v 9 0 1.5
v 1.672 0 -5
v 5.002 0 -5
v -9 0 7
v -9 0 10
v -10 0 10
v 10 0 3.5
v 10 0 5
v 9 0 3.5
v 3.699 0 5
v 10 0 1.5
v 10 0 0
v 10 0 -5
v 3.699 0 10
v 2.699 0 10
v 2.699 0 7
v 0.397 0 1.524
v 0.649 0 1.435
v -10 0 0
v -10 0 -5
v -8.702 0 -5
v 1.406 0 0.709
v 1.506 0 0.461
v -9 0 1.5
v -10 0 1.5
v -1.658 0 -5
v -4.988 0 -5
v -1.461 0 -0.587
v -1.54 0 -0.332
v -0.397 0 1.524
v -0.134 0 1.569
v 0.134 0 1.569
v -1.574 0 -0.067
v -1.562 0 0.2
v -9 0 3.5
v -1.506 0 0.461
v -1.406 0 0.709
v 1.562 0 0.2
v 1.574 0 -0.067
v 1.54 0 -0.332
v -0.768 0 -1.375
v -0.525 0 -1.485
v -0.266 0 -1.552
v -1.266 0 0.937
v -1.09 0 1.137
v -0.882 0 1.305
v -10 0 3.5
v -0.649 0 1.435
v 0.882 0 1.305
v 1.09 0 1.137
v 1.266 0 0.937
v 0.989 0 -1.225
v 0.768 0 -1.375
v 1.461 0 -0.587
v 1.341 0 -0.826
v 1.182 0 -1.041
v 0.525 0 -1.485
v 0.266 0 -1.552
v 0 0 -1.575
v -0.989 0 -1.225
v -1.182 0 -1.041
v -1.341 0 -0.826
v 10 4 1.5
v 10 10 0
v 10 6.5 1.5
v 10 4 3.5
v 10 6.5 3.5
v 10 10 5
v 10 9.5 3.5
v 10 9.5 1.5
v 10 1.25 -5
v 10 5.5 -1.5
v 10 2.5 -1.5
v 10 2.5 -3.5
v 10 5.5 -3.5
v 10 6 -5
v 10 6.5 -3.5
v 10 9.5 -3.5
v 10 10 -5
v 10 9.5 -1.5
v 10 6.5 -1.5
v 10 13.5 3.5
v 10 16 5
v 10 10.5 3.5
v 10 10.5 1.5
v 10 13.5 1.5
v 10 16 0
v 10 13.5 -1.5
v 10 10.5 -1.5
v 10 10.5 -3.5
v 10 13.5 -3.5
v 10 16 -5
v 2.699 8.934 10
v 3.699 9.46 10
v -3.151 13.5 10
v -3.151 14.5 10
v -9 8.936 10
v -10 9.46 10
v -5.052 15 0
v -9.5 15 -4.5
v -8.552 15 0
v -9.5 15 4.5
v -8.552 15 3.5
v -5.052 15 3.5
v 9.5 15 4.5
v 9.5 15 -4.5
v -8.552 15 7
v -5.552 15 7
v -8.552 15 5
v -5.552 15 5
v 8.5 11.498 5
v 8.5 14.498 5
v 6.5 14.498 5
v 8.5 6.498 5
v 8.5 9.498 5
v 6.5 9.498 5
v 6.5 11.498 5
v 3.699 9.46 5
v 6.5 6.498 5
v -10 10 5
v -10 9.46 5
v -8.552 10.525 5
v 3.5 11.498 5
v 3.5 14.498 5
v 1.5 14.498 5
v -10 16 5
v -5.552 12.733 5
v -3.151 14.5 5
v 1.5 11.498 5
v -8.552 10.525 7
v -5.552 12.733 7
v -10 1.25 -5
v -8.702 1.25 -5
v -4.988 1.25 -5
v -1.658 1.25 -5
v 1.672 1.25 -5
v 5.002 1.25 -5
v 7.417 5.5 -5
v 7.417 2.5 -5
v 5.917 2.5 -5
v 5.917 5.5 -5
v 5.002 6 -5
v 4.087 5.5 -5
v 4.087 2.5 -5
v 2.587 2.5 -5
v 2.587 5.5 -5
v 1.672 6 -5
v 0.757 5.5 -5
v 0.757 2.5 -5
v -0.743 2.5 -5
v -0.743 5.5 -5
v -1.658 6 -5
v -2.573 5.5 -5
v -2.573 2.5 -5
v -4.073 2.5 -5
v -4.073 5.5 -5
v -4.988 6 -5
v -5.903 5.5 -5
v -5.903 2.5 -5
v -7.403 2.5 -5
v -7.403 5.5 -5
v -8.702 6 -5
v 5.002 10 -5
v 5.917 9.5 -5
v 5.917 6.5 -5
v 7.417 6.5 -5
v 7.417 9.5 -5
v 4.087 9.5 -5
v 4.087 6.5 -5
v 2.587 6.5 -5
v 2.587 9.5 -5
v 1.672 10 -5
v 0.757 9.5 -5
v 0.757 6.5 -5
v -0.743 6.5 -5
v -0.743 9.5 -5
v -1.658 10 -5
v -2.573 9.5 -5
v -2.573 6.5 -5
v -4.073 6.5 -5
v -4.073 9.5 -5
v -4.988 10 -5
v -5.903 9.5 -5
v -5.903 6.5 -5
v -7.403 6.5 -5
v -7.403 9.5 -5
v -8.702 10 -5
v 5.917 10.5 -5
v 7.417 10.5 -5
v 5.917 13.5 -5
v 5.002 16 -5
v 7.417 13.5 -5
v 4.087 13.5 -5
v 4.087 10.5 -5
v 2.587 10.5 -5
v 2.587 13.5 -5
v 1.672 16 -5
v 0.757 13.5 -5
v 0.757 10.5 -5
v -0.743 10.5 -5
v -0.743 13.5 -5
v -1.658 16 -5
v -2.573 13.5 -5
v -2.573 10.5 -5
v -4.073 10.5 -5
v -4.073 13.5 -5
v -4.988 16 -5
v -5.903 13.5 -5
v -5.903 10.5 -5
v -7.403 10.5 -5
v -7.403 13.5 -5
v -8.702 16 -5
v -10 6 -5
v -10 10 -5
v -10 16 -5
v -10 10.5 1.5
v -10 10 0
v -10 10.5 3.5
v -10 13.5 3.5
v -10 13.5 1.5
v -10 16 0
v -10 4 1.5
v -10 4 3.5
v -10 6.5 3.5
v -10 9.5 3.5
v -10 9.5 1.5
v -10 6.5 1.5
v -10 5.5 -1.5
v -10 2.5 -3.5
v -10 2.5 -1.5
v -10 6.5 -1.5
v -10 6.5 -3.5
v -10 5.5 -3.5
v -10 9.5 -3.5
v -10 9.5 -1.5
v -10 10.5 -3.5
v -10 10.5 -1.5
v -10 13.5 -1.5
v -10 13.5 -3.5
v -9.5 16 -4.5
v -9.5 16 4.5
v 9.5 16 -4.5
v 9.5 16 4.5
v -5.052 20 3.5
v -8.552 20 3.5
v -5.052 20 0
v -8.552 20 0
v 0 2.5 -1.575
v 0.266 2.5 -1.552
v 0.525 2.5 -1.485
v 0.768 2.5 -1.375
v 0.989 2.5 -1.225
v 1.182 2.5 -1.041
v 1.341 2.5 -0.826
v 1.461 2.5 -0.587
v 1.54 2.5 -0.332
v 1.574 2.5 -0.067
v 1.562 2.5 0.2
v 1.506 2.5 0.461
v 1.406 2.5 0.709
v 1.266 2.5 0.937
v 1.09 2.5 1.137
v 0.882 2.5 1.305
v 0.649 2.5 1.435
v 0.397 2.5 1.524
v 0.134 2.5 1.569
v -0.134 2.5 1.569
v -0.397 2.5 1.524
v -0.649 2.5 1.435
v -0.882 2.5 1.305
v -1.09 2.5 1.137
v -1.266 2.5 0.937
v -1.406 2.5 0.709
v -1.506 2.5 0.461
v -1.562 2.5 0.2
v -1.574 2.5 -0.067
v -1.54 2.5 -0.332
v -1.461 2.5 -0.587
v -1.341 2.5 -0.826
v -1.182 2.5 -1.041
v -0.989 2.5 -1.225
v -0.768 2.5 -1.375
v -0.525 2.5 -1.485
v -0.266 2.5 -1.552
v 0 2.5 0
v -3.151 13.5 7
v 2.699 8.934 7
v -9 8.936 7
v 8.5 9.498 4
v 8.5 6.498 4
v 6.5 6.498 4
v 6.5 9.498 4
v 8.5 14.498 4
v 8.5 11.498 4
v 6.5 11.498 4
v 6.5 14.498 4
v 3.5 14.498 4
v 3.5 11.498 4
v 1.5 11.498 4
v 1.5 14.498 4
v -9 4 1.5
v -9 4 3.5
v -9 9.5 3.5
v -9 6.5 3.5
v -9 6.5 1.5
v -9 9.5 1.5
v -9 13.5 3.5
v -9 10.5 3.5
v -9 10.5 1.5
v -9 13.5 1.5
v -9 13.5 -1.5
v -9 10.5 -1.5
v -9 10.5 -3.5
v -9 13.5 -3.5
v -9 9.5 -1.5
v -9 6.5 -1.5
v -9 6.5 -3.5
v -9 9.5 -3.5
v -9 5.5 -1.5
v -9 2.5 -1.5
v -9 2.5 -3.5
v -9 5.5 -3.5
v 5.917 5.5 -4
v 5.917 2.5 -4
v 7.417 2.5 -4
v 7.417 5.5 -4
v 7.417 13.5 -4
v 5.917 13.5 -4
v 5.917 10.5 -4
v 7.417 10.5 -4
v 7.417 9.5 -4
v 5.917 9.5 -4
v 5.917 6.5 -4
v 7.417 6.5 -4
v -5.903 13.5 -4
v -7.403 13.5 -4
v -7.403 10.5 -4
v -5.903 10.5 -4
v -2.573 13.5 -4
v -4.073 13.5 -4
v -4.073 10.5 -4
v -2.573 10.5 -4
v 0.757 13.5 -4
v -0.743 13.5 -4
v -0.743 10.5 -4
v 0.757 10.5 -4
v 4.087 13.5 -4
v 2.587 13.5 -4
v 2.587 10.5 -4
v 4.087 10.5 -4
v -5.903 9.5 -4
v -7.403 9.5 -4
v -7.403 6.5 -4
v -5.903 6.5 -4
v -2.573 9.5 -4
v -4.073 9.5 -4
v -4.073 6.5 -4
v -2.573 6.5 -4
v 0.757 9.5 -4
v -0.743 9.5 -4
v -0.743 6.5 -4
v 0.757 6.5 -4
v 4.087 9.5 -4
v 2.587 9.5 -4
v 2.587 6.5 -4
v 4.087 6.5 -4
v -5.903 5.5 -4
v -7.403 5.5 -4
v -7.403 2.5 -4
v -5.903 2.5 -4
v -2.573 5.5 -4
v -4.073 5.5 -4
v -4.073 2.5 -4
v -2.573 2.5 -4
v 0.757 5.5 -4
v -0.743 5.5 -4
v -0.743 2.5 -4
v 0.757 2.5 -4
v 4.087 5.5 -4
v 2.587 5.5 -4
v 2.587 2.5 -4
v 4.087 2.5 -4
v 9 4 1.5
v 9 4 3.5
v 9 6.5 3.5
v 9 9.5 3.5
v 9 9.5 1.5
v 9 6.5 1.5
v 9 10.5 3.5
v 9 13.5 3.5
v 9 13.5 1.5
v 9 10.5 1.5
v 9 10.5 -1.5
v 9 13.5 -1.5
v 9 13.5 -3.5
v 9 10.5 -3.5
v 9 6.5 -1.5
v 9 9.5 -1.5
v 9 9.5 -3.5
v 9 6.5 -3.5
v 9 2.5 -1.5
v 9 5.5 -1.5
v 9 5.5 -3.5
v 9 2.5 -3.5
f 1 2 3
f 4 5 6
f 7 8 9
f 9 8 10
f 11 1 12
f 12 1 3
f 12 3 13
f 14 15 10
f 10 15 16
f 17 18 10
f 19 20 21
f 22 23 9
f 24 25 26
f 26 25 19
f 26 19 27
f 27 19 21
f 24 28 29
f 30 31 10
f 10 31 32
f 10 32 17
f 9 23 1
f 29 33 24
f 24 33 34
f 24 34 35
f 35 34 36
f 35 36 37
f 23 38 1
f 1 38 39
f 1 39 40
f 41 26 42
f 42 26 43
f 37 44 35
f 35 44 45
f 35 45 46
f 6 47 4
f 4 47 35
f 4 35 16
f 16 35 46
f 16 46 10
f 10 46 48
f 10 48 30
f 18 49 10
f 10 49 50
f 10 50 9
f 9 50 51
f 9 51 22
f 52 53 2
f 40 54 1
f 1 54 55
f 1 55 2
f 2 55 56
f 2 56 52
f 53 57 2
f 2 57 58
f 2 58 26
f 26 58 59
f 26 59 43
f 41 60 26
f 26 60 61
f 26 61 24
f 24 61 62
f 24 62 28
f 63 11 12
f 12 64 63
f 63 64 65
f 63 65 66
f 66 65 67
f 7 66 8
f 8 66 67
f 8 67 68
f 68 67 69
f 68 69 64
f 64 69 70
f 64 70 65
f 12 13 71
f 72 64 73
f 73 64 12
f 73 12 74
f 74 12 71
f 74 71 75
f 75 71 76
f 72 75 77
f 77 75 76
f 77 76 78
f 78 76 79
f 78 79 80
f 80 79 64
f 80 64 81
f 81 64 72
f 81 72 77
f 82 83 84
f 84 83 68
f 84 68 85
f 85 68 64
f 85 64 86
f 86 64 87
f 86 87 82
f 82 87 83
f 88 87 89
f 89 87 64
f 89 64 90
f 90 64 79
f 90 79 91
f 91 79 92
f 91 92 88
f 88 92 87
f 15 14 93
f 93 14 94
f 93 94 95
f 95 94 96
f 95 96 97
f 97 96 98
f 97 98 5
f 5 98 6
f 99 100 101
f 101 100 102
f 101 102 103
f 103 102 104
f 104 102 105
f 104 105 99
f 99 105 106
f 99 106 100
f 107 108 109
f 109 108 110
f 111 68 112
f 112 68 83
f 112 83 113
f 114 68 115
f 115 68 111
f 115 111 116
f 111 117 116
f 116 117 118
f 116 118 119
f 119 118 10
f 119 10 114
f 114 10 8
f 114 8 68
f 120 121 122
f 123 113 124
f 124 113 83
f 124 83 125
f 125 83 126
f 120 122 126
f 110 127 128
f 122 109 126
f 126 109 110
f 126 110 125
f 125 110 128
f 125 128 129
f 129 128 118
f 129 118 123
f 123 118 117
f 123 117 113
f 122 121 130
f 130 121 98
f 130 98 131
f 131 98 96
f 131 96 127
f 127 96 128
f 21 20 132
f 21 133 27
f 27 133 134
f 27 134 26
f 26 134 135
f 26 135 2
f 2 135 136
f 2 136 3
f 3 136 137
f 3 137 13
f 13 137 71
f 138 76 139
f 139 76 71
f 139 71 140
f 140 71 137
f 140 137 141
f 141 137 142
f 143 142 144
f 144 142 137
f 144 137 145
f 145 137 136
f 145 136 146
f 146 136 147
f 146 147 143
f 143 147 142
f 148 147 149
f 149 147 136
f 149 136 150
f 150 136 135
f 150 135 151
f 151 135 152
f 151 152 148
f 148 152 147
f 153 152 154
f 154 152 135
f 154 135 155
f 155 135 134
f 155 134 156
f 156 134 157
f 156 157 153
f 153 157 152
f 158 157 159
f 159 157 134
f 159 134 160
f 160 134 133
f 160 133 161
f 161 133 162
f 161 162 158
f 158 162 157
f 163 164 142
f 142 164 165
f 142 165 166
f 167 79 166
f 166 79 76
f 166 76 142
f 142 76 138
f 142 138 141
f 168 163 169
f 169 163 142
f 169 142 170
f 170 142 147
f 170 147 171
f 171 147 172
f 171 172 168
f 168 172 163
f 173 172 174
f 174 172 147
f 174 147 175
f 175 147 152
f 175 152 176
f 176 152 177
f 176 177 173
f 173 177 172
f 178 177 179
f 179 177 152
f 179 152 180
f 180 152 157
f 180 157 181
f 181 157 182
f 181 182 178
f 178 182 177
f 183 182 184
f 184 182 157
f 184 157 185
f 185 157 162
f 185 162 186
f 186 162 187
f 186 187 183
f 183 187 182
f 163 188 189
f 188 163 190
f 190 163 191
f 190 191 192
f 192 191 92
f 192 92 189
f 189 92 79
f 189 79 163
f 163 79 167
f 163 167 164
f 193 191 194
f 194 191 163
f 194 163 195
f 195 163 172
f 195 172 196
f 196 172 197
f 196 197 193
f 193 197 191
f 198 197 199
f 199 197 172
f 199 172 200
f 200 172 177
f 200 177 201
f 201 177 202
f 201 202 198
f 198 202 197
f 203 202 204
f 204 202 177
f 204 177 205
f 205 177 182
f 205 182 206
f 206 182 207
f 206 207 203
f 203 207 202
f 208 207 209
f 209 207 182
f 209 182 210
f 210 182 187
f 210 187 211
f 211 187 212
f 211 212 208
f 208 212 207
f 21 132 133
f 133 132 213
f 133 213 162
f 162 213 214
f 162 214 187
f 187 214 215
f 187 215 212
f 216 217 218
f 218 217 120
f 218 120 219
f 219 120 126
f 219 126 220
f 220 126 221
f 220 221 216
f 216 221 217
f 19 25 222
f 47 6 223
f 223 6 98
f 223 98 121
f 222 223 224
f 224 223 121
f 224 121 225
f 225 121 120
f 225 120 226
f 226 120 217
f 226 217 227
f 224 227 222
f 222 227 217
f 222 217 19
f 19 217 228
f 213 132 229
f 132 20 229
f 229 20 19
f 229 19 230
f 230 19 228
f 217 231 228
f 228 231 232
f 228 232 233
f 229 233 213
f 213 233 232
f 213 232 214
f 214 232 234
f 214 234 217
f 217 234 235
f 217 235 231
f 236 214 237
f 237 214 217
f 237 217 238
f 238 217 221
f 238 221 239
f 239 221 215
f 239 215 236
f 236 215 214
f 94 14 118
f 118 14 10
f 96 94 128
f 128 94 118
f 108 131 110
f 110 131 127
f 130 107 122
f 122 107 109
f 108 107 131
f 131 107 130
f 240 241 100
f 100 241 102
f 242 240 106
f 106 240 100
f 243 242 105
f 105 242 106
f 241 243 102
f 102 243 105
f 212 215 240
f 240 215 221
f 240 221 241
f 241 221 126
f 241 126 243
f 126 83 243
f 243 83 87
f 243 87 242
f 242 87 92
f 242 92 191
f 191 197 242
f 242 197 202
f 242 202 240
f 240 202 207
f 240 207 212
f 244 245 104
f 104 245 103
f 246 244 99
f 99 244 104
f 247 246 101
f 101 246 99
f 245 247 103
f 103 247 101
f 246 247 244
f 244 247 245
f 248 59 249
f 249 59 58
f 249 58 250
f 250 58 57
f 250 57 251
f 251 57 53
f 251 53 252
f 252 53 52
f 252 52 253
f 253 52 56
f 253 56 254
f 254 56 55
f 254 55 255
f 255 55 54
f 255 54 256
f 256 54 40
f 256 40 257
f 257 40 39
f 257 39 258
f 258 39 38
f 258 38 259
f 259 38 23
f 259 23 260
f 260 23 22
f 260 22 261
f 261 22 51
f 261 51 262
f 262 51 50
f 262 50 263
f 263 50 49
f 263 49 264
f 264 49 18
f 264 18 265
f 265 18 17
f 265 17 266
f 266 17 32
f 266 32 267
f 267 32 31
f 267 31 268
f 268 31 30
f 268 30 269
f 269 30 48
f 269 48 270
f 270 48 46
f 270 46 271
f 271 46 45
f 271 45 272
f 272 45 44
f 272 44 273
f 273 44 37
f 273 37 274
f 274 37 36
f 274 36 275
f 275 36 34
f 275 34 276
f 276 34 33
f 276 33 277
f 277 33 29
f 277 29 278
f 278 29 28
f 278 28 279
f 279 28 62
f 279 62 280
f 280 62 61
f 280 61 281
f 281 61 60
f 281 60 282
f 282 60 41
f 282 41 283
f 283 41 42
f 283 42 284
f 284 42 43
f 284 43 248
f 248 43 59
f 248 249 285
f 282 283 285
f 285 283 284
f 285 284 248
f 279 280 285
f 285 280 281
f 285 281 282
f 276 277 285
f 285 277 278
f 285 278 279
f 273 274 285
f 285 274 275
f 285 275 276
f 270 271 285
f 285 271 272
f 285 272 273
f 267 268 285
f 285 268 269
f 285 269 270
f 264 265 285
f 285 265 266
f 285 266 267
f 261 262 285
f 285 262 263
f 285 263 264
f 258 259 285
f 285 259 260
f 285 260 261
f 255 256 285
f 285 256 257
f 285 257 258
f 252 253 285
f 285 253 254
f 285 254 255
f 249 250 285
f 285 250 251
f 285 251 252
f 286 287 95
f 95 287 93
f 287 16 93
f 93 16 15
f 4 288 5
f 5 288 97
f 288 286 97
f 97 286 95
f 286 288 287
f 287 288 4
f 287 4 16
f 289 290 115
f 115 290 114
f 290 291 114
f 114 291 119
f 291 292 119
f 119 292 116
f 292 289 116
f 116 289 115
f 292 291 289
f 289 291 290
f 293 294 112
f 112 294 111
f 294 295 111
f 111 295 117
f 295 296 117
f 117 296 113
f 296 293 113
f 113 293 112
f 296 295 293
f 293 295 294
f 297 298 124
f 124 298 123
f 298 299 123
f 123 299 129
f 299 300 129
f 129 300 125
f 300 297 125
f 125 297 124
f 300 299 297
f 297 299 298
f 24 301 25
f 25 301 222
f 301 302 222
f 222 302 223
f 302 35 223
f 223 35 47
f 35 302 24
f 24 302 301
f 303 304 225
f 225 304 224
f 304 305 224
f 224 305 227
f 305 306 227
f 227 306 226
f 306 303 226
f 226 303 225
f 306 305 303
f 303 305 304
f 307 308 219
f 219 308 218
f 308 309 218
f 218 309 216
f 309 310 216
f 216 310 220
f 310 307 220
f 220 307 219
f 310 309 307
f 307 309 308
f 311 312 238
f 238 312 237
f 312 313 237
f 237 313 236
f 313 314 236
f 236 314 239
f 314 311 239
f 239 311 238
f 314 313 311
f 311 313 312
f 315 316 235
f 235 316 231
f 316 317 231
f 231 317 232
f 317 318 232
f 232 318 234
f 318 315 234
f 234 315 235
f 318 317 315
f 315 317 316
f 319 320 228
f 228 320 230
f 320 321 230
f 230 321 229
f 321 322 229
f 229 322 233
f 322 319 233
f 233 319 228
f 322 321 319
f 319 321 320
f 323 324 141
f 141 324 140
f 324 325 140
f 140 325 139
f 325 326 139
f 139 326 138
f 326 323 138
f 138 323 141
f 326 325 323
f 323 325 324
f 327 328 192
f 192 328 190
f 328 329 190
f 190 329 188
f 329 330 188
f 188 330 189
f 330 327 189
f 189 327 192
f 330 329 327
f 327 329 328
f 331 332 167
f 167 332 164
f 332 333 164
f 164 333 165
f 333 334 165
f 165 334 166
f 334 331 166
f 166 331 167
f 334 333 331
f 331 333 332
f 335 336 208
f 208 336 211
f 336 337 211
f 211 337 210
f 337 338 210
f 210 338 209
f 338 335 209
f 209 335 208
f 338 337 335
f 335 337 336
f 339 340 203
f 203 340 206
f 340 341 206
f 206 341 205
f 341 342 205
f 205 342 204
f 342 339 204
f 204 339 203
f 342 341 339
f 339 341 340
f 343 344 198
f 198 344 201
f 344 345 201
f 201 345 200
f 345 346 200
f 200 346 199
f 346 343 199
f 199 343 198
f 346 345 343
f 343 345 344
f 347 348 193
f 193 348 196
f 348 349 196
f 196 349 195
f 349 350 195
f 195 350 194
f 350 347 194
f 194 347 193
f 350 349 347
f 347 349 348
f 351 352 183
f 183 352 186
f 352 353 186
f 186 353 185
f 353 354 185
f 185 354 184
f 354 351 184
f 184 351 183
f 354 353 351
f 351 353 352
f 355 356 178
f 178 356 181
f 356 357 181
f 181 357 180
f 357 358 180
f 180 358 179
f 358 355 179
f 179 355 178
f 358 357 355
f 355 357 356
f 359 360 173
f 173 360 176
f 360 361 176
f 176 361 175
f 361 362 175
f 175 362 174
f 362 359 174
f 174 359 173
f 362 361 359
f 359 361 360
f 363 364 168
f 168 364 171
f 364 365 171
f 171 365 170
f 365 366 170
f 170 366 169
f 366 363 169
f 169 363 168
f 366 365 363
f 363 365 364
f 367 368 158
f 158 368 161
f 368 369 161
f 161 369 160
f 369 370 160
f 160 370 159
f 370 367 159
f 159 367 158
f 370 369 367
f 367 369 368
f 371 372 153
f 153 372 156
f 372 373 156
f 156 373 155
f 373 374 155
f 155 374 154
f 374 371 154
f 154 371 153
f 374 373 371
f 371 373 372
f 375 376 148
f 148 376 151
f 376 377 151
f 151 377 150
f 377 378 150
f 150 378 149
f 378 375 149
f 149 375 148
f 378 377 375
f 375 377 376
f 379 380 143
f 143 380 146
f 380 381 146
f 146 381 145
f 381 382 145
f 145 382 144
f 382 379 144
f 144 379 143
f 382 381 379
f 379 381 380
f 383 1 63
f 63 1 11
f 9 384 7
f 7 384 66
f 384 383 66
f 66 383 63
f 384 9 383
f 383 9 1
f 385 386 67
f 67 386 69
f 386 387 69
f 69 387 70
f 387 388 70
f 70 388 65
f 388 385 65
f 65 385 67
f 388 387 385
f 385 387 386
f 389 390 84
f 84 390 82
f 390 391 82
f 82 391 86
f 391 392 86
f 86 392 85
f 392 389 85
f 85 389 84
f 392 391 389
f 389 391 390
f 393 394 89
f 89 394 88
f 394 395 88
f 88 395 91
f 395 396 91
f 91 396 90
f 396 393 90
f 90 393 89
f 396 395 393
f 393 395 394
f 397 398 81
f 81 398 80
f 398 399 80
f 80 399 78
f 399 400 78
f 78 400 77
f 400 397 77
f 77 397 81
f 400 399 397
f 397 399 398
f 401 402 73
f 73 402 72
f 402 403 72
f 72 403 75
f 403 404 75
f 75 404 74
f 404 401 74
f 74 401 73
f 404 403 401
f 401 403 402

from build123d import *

# Parameters (mm, degrees)
CROQUIS1_W              = 20
CROQUIS1_H              = 10
SALIENTE_EXTRUIR1_DEPTH = 15
SALIENTE_EXTRUIR2_DEPTH = 5
SALIENTE_EXTRUIR3_DEPTH = 2
CROQUIS4_W              = 19
CROQUIS4_H              = 9
SALIENTE_EXTRUIR4_DEPTH = 1
CROQUIS4_3_W            = 3.5
CROQUIS4_3_H            = 3.5
SALIENTE_EXTRUIR5_DEPTH = 5
CROQUIS5_R              = 1.575
CORTAR_EXTRUIR1_DEPTH   = 2.5
CORTAR_EXTRUIR2_DEPTH   = 3
CROQUIS7_W              = 2
CROQUIS7_H              = 3
CORTAR_EXTRUIR3_DEPTH   = 1
CROQUIS8_W              = 2
CROQUIS8_H              = 4
CROQUIS8_H_2            = 3
CORTAR_EXTRUIR4_DEPTH   = 1
CROQUIS9_W              = 1.5
CROQUIS9_H              = 3
CORTAR_EXTRUIR5_DEPTH   = 1


with BuildPart() as part:
    # Croquis1 → Saliente-Extruir1 (new body)
    with BuildSketch(Plane(origin=(0, 0, 0), x_dir=(1, 0, 0), z_dir=(0, 1, 0))):
        Rectangle(CROQUIS1_W, CROQUIS1_H)
    extrude(amount=SALIENTE_EXTRUIR1_DEPTH)

    # Croquis2 → Saliente-Extruir2 (add)
    with BuildSketch(Plane.XY.offset(5)):
        Polygon((-10, 0), (3.69887005, 0), (3.69887005, 9.460087219), (-3.150564975, 14.5), (-10, 9.460087219), align=None)
    extrude(amount=SALIENTE_EXTRUIR2_DEPTH)

    # Croquis3 → Saliente-Extruir3 (add)
    with BuildSketch(Plane.XY.offset(5)):
        Polygon((-8.552244838, 10.525366285), (-8.552244838, 15), (-5.552244838, 15), (-5.552244838, 12.732809422), align=None)
    extrude(amount=SALIENTE_EXTRUIR3_DEPTH)

    # Croquis4 → Saliente-Extruir4 (add)
    with BuildSketch(Plane(origin=(0, 15, 0), x_dir=(1, 0, 0), z_dir=(0, 1, 0))):
        Polygon((-10, 4.5), (-10, -4.5), (-10, -5), (-9.5, -5), (-8.552244838, -5), (-5.552244838, -5), (9.5, -5), (10, -5), (10, -4.5), (10, 4.5), (10, 5), (9.5, 5), (-9.5, 5), (-10, 5), align=None)
        Rectangle(CROQUIS4_W, CROQUIS4_H, mode=Mode.SUBTRACT)
    extrude(amount=SALIENTE_EXTRUIR4_DEPTH)

    # Croquis4<3> → Saliente-Extruir5 (add)
    with BuildSketch(Plane(origin=(0, 15, 0), x_dir=(1, 0, 0), z_dir=(0, 1, 0))):
        with Locations((-6.802244838, -1.75)):
            Rectangle(CROQUIS4_3_W, CROQUIS4_3_H)
    extrude(amount=SALIENTE_EXTRUIR5_DEPTH)

    # Croquis5 → Cortar-Extruir1 (cut)
    with BuildSketch(Plane.XZ):
        Circle(CROQUIS5_R)
    extrude(amount=-CORTAR_EXTRUIR1_DEPTH, mode=Mode.SUBTRACT)

    # Croquis6 → Cortar-Extruir2 (cut)
    with BuildSketch(Plane.XY.offset(10)):
        Polygon((-9, 8.935724798), (-9, 0), (2.69887005, 0), (2.69887005, 8.933581491), (-3.150564975, 13.5), align=None)
    extrude(amount=-CORTAR_EXTRUIR2_DEPTH, mode=Mode.SUBTRACT)

    # Croquis7 → Cortar-Extruir3 (cut)
    with BuildSketch(Plane.XY.offset(5)):
        with Locations((2.5, 12.998129378)):
            Rectangle(CROQUIS7_W, CROQUIS7_H)
        with Locations((7.5, 12.998129378)):
            Rectangle(CROQUIS7_W, CROQUIS7_H)
        with Locations((7.5, 7.998129378)):
            Rectangle(CROQUIS7_W, CROQUIS7_H)
    extrude(amount=-CORTAR_EXTRUIR3_DEPTH, mode=Mode.SUBTRACT)

    # Croquis8 → Cortar-Extruir4 (cut)
    with BuildSketch(Plane.ZY.offset(10)):
        with Locations((2.5, 2)):
            Rectangle(CROQUIS8_W, CROQUIS8_H)
        with Locations((-2.5, 4)):
            Rectangle(CROQUIS8_W, CROQUIS8_H_2)
        with Locations((-2.5, 8)):
            Rectangle(CROQUIS8_W, CROQUIS8_H_2)
        with Locations((-2.5, 12)):
            Rectangle(CROQUIS8_W, CROQUIS8_H_2)
        with Locations((2.5, 12)):
            Rectangle(CROQUIS8_W, CROQUIS8_H_2)
        with Locations((2.5, 8)):
            Rectangle(CROQUIS8_W, CROQUIS8_H_2)
    cortar_extruir4 = extrude(amount=-CORTAR_EXTRUIR4_DEPTH, mode=Mode.SUBTRACT)

    # Croquis9 → Cortar-Extruir5 (cut)
    with BuildSketch(Plane(origin=(0, 0, -5), x_dir=(-1, 0, 0), z_dir=(0, 0, -1))):
        with Locations((-3.336666667, 4)):
            Rectangle(CROQUIS9_W, CROQUIS9_H)
        with Locations((-6.666666667, 4)):
            Rectangle(CROQUIS9_W, CROQUIS9_H)
        with Locations((-0.006666667, 4)):
            Rectangle(CROQUIS9_W, CROQUIS9_H)
        with Locations((3.323333333, 4)):
            Rectangle(CROQUIS9_W, CROQUIS9_H)
        with Locations((6.653333333, 4)):
            Rectangle(CROQUIS9_W, CROQUIS9_H)
        with Locations((-3.336666667, 8)):
            Rectangle(CROQUIS9_W, CROQUIS9_H)
        with Locations((-0.006666667, 8)):
            Rectangle(CROQUIS9_W, CROQUIS9_H)
        with Locations((3.323333333, 8)):
            Rectangle(CROQUIS9_W, CROQUIS9_H)
        with Locations((6.653333333, 8)):
            Rectangle(CROQUIS9_W, CROQUIS9_H)
        with Locations((-3.336666667, 12)):
            Rectangle(CROQUIS9_W, CROQUIS9_H)
        with Locations((-0.006666667, 12)):
            Rectangle(CROQUIS9_W, CROQUIS9_H)
        with Locations((3.323333333, 12)):
            Rectangle(CROQUIS9_W, CROQUIS9_H)
        with Locations((6.653333333, 12)):
            Rectangle(CROQUIS9_W, CROQUIS9_H)
        with Locations((-6.666666667, 8)):
            Rectangle(CROQUIS9_W, CROQUIS9_H)
        with Locations((-6.666666667, 12)):
            Rectangle(CROQUIS9_W, CROQUIS9_H)
    extrude(amount=-CORTAR_EXTRUIR5_DEPTH, mode=Mode.SUBTRACT)

    # Simetría1: Cortar-Extruir4 across plane
    add(cortar_extruir4.mirror(Plane(origin=(0, 0, 0), x_dir=(0, 0, 1), z_dir=(1, 0, 0))), mode=Mode.SUBTRACT)


solid = part.part
